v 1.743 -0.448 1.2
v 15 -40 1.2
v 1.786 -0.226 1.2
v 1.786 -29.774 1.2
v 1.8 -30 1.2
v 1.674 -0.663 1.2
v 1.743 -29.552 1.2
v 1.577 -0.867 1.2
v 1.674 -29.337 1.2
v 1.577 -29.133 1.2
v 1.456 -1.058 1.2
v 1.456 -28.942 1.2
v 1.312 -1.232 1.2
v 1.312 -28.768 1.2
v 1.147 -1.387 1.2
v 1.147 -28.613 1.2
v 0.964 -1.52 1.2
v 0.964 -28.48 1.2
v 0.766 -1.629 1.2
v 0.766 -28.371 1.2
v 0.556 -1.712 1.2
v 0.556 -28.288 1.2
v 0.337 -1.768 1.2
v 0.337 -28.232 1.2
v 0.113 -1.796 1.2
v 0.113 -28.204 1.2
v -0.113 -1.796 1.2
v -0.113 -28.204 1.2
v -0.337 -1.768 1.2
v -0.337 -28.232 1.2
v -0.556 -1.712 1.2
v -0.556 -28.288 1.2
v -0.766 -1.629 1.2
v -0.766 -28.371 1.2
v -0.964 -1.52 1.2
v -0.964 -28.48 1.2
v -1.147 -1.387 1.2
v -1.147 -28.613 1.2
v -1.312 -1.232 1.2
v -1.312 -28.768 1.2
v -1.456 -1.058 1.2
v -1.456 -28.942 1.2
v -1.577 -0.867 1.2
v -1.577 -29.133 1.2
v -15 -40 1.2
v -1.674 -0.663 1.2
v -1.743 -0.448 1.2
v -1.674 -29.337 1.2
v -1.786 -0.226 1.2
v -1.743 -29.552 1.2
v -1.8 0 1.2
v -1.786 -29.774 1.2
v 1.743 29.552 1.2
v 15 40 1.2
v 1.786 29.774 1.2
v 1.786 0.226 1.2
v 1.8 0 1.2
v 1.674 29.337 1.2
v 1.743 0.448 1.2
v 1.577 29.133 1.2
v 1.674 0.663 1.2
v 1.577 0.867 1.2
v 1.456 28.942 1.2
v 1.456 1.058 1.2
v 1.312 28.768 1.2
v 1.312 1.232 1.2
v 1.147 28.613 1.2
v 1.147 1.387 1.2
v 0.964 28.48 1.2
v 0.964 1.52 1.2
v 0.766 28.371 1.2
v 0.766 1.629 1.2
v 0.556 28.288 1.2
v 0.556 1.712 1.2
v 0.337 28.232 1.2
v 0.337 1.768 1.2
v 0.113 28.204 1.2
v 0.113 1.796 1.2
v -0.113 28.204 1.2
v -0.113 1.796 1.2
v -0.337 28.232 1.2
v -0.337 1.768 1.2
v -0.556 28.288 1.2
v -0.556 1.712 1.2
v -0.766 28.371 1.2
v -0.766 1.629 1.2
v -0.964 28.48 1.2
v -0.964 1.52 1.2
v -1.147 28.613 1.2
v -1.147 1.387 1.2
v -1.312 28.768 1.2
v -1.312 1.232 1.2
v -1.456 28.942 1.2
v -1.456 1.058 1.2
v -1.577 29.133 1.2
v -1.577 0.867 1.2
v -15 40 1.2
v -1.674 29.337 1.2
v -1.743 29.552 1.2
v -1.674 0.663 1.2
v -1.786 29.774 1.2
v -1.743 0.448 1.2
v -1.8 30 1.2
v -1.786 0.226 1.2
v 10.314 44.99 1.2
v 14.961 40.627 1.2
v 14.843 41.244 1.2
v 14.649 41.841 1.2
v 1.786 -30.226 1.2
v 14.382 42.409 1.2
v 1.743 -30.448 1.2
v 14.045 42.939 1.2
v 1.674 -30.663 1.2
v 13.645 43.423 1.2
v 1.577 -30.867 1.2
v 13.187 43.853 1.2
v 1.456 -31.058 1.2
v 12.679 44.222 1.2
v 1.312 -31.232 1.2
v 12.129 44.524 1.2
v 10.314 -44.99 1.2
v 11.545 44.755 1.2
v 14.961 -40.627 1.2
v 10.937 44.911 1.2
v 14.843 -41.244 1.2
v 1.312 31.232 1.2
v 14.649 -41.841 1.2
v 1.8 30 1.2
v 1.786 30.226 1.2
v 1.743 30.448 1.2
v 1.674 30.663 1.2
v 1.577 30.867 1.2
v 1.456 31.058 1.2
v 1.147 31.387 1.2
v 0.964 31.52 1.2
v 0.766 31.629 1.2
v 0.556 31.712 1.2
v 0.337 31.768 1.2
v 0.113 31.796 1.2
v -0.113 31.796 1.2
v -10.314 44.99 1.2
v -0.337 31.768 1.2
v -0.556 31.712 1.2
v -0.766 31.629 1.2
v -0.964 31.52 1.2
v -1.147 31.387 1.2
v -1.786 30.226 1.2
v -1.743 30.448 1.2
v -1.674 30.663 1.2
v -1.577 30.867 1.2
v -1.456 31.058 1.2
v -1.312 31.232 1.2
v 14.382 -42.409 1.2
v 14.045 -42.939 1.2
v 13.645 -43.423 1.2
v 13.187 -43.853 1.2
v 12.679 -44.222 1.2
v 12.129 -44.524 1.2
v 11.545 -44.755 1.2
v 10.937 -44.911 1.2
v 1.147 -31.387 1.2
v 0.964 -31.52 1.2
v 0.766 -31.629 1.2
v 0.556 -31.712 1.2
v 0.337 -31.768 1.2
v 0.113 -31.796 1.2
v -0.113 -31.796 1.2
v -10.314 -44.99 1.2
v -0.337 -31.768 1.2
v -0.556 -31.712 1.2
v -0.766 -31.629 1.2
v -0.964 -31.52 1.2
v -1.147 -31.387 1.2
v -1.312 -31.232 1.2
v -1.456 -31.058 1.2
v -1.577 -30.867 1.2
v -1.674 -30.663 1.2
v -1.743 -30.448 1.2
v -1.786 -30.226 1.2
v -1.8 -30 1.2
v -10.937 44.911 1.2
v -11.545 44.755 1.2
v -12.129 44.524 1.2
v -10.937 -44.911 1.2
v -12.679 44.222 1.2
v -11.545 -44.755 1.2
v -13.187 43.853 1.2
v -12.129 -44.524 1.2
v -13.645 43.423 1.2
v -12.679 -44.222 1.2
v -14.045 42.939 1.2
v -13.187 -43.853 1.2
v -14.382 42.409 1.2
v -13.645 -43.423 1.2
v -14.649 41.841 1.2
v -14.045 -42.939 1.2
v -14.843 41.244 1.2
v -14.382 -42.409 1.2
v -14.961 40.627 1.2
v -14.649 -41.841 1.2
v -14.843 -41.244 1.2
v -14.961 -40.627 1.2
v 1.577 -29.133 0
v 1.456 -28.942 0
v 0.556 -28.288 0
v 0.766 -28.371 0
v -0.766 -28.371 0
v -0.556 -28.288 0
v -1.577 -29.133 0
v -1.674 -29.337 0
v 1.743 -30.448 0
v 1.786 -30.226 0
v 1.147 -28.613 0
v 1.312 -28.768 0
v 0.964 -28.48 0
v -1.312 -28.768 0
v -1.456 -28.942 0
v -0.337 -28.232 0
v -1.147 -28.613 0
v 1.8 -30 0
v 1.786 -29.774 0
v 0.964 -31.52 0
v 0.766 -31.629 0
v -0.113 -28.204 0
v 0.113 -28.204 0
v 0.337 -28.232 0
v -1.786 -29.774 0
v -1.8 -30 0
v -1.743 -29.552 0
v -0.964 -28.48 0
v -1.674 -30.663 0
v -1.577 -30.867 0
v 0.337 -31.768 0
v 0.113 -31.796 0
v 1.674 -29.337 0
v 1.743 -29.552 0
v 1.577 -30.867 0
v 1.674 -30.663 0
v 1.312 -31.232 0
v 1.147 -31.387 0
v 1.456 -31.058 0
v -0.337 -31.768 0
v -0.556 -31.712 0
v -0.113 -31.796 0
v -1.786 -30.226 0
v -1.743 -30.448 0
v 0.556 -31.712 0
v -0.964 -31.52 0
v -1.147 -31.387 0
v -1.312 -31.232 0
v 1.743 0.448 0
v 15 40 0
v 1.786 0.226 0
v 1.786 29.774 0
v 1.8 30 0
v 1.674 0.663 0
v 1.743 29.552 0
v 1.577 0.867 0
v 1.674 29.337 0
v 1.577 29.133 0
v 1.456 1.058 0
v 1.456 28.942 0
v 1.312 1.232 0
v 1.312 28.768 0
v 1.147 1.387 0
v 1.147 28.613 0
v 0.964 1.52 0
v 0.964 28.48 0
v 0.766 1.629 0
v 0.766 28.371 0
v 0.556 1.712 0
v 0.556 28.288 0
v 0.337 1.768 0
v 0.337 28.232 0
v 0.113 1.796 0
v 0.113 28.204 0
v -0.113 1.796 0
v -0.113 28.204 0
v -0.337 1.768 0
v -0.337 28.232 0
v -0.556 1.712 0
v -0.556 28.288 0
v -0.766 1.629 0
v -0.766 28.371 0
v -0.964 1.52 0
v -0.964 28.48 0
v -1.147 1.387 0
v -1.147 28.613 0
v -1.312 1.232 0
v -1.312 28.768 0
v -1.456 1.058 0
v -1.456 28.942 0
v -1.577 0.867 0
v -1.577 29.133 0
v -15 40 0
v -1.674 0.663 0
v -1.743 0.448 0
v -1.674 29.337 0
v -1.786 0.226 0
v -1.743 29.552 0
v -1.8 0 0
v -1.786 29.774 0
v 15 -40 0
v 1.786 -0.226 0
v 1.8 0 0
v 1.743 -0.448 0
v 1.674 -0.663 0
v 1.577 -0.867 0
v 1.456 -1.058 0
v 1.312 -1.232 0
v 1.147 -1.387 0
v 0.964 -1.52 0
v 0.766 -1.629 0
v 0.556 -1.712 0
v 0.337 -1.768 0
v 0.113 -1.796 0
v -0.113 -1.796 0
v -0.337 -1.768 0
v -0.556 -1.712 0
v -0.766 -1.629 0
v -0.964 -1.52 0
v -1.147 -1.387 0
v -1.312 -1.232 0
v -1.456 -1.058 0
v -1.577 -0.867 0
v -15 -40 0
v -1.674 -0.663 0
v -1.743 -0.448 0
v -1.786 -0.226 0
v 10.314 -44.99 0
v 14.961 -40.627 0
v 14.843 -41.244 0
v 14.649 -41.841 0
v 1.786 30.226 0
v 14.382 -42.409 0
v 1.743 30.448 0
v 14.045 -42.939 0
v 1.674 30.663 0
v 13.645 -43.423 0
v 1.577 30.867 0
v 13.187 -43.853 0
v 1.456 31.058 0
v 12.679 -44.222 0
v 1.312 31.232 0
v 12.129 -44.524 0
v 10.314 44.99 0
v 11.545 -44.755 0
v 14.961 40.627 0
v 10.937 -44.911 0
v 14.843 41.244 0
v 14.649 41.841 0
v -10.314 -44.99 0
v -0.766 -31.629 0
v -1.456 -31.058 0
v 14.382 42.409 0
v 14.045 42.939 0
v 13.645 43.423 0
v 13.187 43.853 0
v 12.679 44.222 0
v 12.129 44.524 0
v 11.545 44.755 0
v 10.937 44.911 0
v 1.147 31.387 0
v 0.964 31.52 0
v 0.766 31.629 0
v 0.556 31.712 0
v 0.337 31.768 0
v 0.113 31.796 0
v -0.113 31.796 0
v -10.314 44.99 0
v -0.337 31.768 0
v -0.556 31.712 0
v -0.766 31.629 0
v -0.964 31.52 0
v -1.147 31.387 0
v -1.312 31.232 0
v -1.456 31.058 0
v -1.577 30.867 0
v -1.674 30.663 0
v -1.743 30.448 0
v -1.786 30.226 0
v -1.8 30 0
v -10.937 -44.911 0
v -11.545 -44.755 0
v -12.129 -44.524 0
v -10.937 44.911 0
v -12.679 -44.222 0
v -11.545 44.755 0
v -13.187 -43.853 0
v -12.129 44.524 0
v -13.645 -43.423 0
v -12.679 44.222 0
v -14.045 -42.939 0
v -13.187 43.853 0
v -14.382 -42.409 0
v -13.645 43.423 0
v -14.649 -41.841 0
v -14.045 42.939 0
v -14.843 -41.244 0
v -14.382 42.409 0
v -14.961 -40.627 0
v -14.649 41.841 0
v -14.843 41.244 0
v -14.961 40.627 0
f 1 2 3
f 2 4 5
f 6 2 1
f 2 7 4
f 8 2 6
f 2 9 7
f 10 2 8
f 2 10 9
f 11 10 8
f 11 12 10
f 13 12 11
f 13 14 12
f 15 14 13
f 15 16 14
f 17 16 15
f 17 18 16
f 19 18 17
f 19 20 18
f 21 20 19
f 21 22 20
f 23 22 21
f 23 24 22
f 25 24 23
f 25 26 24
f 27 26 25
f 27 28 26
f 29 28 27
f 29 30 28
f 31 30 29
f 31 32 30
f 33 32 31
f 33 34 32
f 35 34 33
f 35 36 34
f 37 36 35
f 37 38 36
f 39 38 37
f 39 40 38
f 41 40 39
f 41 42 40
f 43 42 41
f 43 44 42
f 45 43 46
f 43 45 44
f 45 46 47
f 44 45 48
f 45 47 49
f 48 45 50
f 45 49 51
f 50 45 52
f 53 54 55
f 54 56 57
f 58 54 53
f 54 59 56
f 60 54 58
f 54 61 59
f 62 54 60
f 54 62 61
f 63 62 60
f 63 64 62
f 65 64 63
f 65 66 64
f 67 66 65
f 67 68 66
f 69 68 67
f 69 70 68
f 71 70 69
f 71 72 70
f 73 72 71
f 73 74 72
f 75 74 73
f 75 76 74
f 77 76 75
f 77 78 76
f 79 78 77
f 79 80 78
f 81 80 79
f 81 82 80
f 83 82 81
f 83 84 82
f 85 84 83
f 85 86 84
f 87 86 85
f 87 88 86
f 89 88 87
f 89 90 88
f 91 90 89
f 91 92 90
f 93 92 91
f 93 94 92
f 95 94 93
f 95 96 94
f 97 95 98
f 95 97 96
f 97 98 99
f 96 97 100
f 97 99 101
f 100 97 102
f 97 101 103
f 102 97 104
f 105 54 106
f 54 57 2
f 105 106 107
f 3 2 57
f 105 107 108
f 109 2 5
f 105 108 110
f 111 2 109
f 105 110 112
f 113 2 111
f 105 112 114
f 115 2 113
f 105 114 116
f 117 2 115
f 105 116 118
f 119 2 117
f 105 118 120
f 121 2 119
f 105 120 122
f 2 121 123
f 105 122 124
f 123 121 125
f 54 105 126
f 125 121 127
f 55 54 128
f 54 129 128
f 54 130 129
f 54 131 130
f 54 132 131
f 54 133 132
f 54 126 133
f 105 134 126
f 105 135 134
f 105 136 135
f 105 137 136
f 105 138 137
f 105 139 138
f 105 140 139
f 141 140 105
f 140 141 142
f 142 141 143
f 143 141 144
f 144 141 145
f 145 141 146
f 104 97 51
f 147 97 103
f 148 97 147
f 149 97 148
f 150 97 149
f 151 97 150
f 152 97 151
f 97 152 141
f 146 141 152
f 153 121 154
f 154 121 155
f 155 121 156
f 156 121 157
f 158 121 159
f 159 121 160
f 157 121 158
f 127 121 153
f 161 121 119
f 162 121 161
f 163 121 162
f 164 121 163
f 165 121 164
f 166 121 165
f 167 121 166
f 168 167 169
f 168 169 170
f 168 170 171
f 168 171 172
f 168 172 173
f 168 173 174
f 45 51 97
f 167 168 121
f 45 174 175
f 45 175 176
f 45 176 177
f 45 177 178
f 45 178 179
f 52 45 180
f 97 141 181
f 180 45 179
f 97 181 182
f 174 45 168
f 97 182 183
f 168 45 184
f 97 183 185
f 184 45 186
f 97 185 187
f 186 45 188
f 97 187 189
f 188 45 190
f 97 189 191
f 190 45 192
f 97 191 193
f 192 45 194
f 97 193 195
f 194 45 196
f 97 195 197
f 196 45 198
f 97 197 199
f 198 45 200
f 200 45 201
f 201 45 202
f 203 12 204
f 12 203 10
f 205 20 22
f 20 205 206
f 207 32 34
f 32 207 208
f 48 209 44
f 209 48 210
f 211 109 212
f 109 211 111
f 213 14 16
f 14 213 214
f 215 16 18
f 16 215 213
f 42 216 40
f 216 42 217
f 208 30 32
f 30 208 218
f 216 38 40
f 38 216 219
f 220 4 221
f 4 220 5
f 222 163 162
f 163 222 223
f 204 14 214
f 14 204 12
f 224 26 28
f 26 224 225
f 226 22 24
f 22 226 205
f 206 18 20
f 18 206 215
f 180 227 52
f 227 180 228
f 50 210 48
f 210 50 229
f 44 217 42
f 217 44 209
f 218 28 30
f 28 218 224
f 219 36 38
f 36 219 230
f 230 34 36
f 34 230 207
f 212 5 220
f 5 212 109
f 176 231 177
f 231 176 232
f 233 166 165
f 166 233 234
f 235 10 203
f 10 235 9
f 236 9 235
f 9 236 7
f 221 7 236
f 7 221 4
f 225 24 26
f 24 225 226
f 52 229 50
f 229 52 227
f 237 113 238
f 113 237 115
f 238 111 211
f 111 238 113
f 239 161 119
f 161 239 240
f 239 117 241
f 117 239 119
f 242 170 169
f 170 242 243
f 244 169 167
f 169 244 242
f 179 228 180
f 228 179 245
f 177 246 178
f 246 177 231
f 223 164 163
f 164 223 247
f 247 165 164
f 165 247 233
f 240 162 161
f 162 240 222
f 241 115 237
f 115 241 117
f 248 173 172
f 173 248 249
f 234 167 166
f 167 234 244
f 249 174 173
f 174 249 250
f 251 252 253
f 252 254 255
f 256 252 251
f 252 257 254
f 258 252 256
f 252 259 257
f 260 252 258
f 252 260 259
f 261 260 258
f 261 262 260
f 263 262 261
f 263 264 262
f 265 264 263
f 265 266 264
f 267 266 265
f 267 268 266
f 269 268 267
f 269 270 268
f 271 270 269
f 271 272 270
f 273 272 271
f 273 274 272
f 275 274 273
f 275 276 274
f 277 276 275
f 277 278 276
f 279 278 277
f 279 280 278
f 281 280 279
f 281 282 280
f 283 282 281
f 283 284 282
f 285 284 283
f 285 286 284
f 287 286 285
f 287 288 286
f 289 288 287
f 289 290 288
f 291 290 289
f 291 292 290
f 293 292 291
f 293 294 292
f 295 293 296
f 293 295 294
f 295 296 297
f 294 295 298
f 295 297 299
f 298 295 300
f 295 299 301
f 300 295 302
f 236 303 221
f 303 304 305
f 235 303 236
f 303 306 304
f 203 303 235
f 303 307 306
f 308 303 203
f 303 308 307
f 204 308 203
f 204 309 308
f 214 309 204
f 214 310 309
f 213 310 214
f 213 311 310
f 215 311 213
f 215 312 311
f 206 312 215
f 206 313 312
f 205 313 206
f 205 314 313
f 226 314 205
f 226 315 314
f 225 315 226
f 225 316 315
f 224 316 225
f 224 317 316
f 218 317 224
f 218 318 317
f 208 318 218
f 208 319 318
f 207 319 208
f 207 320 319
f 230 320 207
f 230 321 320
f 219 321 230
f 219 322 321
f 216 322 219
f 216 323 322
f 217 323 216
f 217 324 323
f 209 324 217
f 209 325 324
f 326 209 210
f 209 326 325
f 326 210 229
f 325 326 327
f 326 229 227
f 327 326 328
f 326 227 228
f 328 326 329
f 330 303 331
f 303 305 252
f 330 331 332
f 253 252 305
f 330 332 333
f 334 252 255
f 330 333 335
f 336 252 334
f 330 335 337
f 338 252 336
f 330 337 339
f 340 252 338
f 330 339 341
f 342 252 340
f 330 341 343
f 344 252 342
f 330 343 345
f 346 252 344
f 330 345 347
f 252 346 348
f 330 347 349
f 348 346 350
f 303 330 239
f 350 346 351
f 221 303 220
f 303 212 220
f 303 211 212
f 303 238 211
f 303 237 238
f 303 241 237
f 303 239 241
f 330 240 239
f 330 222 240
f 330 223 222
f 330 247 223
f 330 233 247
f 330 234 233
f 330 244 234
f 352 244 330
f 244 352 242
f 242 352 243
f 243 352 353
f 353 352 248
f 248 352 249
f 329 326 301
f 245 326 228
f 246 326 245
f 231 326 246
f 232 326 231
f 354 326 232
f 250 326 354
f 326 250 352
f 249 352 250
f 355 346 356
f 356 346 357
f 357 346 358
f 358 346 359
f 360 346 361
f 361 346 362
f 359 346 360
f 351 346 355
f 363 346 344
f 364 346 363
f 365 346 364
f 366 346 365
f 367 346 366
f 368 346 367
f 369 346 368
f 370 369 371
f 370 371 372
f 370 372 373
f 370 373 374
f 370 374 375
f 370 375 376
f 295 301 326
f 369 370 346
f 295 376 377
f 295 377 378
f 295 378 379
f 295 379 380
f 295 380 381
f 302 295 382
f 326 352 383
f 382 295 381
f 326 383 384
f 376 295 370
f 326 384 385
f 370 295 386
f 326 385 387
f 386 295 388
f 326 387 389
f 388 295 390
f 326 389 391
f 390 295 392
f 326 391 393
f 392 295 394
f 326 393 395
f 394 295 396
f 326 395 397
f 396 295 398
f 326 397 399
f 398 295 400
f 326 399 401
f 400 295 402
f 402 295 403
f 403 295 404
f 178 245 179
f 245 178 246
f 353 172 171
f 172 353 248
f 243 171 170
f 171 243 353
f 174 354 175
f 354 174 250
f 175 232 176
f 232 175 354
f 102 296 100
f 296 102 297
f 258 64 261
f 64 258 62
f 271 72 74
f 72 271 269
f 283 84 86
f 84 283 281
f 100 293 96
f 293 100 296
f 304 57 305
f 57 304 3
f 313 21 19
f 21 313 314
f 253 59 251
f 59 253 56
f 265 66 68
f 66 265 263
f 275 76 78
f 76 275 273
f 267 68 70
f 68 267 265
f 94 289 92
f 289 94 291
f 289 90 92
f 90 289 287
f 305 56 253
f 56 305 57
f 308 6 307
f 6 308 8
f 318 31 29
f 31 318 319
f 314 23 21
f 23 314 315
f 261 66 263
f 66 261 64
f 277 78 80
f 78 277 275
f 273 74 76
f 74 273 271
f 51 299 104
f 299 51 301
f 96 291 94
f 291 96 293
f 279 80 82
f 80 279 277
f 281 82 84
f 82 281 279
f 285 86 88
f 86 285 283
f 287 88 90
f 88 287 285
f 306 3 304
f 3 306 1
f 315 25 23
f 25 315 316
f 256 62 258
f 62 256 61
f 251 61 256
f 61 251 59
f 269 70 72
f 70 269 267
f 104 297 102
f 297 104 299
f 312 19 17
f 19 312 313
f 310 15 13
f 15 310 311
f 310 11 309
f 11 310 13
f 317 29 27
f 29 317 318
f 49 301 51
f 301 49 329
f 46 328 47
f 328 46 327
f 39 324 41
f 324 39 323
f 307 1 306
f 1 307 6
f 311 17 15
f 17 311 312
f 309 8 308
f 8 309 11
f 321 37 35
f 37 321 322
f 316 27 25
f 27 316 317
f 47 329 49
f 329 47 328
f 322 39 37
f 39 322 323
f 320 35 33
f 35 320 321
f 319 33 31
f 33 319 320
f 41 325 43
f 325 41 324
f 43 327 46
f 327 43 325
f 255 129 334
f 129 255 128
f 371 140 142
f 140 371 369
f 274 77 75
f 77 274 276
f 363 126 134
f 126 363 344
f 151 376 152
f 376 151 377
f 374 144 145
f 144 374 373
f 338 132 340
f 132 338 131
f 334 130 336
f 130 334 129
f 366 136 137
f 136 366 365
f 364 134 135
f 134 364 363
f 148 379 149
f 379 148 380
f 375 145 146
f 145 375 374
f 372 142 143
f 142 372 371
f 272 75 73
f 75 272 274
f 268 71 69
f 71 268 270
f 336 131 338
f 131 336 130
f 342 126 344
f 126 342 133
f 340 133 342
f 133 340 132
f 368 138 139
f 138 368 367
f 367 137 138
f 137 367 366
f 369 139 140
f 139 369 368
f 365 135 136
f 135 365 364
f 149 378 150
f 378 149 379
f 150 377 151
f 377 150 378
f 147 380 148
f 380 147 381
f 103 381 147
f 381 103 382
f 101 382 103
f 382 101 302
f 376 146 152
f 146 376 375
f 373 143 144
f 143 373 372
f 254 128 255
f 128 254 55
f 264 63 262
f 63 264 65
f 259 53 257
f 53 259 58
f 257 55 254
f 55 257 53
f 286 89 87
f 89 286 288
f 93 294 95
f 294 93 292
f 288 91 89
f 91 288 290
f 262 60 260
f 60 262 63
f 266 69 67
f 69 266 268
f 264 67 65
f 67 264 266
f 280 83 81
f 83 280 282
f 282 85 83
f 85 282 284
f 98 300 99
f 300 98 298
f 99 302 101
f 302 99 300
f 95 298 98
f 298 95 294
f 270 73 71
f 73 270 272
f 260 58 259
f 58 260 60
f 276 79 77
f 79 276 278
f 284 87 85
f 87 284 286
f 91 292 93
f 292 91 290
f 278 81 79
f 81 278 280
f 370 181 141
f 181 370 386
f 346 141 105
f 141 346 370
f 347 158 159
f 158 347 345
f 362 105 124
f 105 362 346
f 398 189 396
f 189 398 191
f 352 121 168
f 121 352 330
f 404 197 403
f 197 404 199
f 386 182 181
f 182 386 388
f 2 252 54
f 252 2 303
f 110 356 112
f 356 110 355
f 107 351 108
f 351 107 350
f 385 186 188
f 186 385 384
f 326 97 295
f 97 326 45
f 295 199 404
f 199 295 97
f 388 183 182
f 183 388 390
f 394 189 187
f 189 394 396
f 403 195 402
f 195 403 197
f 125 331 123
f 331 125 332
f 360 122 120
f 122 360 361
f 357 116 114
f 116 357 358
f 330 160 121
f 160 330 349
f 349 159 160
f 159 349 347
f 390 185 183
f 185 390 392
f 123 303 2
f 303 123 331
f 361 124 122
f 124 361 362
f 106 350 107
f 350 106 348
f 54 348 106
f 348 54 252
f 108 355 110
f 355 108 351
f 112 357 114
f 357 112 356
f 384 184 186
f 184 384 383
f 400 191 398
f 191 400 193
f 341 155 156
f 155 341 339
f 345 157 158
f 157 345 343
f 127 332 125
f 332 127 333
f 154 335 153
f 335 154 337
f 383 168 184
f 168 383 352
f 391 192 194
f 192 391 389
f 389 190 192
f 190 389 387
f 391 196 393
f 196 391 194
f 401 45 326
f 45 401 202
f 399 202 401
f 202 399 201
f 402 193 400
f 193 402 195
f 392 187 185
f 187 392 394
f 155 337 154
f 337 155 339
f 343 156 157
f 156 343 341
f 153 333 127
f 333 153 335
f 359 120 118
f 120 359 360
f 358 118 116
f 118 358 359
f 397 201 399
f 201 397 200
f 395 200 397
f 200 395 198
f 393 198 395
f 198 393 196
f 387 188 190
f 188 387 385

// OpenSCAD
$fn = 50;


difference() {
	union() {
		hull() {
			translate(v = [-10.0000000000, 40.0000000000, 0]) {
				cylinder(h = 30, r = 5);
			}
			translate(v = [10.0000000000, 40.0000000000, 0]) {
				cylinder(h = 30, r = 5);
			}
			translate(v = [-10.0000000000, -40.0000000000, 0]) {
				cylinder(h = 30, r = 5);
			}
			translate(v = [10.0000000000, -40.0000000000, 0]) {
				cylinder(h = 30, r = 5);
			}
		}
	}
	union() {
		translate(v = [0, 0, 1.2000000000]) {
			hull() {
				translate(v = [-10.0000000000, 40.0000000000, 0]) {
					cylinder(h = 28.8000000000, r = 3.8000000000);
				}
				translate(v = [10.0000000000, 40.0000000000, 0]) {
					cylinder(h = 28.8000000000, r = 3.8000000000);
				}
				translate(v = [-10.0000000000, -40.0000000000, 0]) {
					cylinder(h = 28.8000000000, r = 3.8000000000);
				}
				translate(v = [10.0000000000, -40.0000000000, 0]) {
					cylinder(h = 28.8000000000, r = 3.8000000000);
				}
			}
		}
		#translate(v = [0.0000000000, -30.0000000000, 0]) {
			cylinder(h = 1.2000000000, r = 1.8000000000);
		}
		#cylinder(h = 1.2000000000, r = 1.8000000000);
		#translate(v = [0.0000000000, 30.0000000000, 0]) {
			cylinder(h = 1.2000000000, r = 1.8000000000);
		}
		translate(v = [-250.0000000000, -250.0000000000, 1.2000000000]) {
			cube(size = [500, 500, 500]);
		}
		translate(v = [-250.0000000000, -250.0000000000, 1.2000000000]) {
			cube(size = [500, 500, 500]);
		}
		translate(v = [-250.0000000000, -250.0000000000, 1.2000000000]) {
			cube(size = [500, 500, 500]);
		}
	}
}
